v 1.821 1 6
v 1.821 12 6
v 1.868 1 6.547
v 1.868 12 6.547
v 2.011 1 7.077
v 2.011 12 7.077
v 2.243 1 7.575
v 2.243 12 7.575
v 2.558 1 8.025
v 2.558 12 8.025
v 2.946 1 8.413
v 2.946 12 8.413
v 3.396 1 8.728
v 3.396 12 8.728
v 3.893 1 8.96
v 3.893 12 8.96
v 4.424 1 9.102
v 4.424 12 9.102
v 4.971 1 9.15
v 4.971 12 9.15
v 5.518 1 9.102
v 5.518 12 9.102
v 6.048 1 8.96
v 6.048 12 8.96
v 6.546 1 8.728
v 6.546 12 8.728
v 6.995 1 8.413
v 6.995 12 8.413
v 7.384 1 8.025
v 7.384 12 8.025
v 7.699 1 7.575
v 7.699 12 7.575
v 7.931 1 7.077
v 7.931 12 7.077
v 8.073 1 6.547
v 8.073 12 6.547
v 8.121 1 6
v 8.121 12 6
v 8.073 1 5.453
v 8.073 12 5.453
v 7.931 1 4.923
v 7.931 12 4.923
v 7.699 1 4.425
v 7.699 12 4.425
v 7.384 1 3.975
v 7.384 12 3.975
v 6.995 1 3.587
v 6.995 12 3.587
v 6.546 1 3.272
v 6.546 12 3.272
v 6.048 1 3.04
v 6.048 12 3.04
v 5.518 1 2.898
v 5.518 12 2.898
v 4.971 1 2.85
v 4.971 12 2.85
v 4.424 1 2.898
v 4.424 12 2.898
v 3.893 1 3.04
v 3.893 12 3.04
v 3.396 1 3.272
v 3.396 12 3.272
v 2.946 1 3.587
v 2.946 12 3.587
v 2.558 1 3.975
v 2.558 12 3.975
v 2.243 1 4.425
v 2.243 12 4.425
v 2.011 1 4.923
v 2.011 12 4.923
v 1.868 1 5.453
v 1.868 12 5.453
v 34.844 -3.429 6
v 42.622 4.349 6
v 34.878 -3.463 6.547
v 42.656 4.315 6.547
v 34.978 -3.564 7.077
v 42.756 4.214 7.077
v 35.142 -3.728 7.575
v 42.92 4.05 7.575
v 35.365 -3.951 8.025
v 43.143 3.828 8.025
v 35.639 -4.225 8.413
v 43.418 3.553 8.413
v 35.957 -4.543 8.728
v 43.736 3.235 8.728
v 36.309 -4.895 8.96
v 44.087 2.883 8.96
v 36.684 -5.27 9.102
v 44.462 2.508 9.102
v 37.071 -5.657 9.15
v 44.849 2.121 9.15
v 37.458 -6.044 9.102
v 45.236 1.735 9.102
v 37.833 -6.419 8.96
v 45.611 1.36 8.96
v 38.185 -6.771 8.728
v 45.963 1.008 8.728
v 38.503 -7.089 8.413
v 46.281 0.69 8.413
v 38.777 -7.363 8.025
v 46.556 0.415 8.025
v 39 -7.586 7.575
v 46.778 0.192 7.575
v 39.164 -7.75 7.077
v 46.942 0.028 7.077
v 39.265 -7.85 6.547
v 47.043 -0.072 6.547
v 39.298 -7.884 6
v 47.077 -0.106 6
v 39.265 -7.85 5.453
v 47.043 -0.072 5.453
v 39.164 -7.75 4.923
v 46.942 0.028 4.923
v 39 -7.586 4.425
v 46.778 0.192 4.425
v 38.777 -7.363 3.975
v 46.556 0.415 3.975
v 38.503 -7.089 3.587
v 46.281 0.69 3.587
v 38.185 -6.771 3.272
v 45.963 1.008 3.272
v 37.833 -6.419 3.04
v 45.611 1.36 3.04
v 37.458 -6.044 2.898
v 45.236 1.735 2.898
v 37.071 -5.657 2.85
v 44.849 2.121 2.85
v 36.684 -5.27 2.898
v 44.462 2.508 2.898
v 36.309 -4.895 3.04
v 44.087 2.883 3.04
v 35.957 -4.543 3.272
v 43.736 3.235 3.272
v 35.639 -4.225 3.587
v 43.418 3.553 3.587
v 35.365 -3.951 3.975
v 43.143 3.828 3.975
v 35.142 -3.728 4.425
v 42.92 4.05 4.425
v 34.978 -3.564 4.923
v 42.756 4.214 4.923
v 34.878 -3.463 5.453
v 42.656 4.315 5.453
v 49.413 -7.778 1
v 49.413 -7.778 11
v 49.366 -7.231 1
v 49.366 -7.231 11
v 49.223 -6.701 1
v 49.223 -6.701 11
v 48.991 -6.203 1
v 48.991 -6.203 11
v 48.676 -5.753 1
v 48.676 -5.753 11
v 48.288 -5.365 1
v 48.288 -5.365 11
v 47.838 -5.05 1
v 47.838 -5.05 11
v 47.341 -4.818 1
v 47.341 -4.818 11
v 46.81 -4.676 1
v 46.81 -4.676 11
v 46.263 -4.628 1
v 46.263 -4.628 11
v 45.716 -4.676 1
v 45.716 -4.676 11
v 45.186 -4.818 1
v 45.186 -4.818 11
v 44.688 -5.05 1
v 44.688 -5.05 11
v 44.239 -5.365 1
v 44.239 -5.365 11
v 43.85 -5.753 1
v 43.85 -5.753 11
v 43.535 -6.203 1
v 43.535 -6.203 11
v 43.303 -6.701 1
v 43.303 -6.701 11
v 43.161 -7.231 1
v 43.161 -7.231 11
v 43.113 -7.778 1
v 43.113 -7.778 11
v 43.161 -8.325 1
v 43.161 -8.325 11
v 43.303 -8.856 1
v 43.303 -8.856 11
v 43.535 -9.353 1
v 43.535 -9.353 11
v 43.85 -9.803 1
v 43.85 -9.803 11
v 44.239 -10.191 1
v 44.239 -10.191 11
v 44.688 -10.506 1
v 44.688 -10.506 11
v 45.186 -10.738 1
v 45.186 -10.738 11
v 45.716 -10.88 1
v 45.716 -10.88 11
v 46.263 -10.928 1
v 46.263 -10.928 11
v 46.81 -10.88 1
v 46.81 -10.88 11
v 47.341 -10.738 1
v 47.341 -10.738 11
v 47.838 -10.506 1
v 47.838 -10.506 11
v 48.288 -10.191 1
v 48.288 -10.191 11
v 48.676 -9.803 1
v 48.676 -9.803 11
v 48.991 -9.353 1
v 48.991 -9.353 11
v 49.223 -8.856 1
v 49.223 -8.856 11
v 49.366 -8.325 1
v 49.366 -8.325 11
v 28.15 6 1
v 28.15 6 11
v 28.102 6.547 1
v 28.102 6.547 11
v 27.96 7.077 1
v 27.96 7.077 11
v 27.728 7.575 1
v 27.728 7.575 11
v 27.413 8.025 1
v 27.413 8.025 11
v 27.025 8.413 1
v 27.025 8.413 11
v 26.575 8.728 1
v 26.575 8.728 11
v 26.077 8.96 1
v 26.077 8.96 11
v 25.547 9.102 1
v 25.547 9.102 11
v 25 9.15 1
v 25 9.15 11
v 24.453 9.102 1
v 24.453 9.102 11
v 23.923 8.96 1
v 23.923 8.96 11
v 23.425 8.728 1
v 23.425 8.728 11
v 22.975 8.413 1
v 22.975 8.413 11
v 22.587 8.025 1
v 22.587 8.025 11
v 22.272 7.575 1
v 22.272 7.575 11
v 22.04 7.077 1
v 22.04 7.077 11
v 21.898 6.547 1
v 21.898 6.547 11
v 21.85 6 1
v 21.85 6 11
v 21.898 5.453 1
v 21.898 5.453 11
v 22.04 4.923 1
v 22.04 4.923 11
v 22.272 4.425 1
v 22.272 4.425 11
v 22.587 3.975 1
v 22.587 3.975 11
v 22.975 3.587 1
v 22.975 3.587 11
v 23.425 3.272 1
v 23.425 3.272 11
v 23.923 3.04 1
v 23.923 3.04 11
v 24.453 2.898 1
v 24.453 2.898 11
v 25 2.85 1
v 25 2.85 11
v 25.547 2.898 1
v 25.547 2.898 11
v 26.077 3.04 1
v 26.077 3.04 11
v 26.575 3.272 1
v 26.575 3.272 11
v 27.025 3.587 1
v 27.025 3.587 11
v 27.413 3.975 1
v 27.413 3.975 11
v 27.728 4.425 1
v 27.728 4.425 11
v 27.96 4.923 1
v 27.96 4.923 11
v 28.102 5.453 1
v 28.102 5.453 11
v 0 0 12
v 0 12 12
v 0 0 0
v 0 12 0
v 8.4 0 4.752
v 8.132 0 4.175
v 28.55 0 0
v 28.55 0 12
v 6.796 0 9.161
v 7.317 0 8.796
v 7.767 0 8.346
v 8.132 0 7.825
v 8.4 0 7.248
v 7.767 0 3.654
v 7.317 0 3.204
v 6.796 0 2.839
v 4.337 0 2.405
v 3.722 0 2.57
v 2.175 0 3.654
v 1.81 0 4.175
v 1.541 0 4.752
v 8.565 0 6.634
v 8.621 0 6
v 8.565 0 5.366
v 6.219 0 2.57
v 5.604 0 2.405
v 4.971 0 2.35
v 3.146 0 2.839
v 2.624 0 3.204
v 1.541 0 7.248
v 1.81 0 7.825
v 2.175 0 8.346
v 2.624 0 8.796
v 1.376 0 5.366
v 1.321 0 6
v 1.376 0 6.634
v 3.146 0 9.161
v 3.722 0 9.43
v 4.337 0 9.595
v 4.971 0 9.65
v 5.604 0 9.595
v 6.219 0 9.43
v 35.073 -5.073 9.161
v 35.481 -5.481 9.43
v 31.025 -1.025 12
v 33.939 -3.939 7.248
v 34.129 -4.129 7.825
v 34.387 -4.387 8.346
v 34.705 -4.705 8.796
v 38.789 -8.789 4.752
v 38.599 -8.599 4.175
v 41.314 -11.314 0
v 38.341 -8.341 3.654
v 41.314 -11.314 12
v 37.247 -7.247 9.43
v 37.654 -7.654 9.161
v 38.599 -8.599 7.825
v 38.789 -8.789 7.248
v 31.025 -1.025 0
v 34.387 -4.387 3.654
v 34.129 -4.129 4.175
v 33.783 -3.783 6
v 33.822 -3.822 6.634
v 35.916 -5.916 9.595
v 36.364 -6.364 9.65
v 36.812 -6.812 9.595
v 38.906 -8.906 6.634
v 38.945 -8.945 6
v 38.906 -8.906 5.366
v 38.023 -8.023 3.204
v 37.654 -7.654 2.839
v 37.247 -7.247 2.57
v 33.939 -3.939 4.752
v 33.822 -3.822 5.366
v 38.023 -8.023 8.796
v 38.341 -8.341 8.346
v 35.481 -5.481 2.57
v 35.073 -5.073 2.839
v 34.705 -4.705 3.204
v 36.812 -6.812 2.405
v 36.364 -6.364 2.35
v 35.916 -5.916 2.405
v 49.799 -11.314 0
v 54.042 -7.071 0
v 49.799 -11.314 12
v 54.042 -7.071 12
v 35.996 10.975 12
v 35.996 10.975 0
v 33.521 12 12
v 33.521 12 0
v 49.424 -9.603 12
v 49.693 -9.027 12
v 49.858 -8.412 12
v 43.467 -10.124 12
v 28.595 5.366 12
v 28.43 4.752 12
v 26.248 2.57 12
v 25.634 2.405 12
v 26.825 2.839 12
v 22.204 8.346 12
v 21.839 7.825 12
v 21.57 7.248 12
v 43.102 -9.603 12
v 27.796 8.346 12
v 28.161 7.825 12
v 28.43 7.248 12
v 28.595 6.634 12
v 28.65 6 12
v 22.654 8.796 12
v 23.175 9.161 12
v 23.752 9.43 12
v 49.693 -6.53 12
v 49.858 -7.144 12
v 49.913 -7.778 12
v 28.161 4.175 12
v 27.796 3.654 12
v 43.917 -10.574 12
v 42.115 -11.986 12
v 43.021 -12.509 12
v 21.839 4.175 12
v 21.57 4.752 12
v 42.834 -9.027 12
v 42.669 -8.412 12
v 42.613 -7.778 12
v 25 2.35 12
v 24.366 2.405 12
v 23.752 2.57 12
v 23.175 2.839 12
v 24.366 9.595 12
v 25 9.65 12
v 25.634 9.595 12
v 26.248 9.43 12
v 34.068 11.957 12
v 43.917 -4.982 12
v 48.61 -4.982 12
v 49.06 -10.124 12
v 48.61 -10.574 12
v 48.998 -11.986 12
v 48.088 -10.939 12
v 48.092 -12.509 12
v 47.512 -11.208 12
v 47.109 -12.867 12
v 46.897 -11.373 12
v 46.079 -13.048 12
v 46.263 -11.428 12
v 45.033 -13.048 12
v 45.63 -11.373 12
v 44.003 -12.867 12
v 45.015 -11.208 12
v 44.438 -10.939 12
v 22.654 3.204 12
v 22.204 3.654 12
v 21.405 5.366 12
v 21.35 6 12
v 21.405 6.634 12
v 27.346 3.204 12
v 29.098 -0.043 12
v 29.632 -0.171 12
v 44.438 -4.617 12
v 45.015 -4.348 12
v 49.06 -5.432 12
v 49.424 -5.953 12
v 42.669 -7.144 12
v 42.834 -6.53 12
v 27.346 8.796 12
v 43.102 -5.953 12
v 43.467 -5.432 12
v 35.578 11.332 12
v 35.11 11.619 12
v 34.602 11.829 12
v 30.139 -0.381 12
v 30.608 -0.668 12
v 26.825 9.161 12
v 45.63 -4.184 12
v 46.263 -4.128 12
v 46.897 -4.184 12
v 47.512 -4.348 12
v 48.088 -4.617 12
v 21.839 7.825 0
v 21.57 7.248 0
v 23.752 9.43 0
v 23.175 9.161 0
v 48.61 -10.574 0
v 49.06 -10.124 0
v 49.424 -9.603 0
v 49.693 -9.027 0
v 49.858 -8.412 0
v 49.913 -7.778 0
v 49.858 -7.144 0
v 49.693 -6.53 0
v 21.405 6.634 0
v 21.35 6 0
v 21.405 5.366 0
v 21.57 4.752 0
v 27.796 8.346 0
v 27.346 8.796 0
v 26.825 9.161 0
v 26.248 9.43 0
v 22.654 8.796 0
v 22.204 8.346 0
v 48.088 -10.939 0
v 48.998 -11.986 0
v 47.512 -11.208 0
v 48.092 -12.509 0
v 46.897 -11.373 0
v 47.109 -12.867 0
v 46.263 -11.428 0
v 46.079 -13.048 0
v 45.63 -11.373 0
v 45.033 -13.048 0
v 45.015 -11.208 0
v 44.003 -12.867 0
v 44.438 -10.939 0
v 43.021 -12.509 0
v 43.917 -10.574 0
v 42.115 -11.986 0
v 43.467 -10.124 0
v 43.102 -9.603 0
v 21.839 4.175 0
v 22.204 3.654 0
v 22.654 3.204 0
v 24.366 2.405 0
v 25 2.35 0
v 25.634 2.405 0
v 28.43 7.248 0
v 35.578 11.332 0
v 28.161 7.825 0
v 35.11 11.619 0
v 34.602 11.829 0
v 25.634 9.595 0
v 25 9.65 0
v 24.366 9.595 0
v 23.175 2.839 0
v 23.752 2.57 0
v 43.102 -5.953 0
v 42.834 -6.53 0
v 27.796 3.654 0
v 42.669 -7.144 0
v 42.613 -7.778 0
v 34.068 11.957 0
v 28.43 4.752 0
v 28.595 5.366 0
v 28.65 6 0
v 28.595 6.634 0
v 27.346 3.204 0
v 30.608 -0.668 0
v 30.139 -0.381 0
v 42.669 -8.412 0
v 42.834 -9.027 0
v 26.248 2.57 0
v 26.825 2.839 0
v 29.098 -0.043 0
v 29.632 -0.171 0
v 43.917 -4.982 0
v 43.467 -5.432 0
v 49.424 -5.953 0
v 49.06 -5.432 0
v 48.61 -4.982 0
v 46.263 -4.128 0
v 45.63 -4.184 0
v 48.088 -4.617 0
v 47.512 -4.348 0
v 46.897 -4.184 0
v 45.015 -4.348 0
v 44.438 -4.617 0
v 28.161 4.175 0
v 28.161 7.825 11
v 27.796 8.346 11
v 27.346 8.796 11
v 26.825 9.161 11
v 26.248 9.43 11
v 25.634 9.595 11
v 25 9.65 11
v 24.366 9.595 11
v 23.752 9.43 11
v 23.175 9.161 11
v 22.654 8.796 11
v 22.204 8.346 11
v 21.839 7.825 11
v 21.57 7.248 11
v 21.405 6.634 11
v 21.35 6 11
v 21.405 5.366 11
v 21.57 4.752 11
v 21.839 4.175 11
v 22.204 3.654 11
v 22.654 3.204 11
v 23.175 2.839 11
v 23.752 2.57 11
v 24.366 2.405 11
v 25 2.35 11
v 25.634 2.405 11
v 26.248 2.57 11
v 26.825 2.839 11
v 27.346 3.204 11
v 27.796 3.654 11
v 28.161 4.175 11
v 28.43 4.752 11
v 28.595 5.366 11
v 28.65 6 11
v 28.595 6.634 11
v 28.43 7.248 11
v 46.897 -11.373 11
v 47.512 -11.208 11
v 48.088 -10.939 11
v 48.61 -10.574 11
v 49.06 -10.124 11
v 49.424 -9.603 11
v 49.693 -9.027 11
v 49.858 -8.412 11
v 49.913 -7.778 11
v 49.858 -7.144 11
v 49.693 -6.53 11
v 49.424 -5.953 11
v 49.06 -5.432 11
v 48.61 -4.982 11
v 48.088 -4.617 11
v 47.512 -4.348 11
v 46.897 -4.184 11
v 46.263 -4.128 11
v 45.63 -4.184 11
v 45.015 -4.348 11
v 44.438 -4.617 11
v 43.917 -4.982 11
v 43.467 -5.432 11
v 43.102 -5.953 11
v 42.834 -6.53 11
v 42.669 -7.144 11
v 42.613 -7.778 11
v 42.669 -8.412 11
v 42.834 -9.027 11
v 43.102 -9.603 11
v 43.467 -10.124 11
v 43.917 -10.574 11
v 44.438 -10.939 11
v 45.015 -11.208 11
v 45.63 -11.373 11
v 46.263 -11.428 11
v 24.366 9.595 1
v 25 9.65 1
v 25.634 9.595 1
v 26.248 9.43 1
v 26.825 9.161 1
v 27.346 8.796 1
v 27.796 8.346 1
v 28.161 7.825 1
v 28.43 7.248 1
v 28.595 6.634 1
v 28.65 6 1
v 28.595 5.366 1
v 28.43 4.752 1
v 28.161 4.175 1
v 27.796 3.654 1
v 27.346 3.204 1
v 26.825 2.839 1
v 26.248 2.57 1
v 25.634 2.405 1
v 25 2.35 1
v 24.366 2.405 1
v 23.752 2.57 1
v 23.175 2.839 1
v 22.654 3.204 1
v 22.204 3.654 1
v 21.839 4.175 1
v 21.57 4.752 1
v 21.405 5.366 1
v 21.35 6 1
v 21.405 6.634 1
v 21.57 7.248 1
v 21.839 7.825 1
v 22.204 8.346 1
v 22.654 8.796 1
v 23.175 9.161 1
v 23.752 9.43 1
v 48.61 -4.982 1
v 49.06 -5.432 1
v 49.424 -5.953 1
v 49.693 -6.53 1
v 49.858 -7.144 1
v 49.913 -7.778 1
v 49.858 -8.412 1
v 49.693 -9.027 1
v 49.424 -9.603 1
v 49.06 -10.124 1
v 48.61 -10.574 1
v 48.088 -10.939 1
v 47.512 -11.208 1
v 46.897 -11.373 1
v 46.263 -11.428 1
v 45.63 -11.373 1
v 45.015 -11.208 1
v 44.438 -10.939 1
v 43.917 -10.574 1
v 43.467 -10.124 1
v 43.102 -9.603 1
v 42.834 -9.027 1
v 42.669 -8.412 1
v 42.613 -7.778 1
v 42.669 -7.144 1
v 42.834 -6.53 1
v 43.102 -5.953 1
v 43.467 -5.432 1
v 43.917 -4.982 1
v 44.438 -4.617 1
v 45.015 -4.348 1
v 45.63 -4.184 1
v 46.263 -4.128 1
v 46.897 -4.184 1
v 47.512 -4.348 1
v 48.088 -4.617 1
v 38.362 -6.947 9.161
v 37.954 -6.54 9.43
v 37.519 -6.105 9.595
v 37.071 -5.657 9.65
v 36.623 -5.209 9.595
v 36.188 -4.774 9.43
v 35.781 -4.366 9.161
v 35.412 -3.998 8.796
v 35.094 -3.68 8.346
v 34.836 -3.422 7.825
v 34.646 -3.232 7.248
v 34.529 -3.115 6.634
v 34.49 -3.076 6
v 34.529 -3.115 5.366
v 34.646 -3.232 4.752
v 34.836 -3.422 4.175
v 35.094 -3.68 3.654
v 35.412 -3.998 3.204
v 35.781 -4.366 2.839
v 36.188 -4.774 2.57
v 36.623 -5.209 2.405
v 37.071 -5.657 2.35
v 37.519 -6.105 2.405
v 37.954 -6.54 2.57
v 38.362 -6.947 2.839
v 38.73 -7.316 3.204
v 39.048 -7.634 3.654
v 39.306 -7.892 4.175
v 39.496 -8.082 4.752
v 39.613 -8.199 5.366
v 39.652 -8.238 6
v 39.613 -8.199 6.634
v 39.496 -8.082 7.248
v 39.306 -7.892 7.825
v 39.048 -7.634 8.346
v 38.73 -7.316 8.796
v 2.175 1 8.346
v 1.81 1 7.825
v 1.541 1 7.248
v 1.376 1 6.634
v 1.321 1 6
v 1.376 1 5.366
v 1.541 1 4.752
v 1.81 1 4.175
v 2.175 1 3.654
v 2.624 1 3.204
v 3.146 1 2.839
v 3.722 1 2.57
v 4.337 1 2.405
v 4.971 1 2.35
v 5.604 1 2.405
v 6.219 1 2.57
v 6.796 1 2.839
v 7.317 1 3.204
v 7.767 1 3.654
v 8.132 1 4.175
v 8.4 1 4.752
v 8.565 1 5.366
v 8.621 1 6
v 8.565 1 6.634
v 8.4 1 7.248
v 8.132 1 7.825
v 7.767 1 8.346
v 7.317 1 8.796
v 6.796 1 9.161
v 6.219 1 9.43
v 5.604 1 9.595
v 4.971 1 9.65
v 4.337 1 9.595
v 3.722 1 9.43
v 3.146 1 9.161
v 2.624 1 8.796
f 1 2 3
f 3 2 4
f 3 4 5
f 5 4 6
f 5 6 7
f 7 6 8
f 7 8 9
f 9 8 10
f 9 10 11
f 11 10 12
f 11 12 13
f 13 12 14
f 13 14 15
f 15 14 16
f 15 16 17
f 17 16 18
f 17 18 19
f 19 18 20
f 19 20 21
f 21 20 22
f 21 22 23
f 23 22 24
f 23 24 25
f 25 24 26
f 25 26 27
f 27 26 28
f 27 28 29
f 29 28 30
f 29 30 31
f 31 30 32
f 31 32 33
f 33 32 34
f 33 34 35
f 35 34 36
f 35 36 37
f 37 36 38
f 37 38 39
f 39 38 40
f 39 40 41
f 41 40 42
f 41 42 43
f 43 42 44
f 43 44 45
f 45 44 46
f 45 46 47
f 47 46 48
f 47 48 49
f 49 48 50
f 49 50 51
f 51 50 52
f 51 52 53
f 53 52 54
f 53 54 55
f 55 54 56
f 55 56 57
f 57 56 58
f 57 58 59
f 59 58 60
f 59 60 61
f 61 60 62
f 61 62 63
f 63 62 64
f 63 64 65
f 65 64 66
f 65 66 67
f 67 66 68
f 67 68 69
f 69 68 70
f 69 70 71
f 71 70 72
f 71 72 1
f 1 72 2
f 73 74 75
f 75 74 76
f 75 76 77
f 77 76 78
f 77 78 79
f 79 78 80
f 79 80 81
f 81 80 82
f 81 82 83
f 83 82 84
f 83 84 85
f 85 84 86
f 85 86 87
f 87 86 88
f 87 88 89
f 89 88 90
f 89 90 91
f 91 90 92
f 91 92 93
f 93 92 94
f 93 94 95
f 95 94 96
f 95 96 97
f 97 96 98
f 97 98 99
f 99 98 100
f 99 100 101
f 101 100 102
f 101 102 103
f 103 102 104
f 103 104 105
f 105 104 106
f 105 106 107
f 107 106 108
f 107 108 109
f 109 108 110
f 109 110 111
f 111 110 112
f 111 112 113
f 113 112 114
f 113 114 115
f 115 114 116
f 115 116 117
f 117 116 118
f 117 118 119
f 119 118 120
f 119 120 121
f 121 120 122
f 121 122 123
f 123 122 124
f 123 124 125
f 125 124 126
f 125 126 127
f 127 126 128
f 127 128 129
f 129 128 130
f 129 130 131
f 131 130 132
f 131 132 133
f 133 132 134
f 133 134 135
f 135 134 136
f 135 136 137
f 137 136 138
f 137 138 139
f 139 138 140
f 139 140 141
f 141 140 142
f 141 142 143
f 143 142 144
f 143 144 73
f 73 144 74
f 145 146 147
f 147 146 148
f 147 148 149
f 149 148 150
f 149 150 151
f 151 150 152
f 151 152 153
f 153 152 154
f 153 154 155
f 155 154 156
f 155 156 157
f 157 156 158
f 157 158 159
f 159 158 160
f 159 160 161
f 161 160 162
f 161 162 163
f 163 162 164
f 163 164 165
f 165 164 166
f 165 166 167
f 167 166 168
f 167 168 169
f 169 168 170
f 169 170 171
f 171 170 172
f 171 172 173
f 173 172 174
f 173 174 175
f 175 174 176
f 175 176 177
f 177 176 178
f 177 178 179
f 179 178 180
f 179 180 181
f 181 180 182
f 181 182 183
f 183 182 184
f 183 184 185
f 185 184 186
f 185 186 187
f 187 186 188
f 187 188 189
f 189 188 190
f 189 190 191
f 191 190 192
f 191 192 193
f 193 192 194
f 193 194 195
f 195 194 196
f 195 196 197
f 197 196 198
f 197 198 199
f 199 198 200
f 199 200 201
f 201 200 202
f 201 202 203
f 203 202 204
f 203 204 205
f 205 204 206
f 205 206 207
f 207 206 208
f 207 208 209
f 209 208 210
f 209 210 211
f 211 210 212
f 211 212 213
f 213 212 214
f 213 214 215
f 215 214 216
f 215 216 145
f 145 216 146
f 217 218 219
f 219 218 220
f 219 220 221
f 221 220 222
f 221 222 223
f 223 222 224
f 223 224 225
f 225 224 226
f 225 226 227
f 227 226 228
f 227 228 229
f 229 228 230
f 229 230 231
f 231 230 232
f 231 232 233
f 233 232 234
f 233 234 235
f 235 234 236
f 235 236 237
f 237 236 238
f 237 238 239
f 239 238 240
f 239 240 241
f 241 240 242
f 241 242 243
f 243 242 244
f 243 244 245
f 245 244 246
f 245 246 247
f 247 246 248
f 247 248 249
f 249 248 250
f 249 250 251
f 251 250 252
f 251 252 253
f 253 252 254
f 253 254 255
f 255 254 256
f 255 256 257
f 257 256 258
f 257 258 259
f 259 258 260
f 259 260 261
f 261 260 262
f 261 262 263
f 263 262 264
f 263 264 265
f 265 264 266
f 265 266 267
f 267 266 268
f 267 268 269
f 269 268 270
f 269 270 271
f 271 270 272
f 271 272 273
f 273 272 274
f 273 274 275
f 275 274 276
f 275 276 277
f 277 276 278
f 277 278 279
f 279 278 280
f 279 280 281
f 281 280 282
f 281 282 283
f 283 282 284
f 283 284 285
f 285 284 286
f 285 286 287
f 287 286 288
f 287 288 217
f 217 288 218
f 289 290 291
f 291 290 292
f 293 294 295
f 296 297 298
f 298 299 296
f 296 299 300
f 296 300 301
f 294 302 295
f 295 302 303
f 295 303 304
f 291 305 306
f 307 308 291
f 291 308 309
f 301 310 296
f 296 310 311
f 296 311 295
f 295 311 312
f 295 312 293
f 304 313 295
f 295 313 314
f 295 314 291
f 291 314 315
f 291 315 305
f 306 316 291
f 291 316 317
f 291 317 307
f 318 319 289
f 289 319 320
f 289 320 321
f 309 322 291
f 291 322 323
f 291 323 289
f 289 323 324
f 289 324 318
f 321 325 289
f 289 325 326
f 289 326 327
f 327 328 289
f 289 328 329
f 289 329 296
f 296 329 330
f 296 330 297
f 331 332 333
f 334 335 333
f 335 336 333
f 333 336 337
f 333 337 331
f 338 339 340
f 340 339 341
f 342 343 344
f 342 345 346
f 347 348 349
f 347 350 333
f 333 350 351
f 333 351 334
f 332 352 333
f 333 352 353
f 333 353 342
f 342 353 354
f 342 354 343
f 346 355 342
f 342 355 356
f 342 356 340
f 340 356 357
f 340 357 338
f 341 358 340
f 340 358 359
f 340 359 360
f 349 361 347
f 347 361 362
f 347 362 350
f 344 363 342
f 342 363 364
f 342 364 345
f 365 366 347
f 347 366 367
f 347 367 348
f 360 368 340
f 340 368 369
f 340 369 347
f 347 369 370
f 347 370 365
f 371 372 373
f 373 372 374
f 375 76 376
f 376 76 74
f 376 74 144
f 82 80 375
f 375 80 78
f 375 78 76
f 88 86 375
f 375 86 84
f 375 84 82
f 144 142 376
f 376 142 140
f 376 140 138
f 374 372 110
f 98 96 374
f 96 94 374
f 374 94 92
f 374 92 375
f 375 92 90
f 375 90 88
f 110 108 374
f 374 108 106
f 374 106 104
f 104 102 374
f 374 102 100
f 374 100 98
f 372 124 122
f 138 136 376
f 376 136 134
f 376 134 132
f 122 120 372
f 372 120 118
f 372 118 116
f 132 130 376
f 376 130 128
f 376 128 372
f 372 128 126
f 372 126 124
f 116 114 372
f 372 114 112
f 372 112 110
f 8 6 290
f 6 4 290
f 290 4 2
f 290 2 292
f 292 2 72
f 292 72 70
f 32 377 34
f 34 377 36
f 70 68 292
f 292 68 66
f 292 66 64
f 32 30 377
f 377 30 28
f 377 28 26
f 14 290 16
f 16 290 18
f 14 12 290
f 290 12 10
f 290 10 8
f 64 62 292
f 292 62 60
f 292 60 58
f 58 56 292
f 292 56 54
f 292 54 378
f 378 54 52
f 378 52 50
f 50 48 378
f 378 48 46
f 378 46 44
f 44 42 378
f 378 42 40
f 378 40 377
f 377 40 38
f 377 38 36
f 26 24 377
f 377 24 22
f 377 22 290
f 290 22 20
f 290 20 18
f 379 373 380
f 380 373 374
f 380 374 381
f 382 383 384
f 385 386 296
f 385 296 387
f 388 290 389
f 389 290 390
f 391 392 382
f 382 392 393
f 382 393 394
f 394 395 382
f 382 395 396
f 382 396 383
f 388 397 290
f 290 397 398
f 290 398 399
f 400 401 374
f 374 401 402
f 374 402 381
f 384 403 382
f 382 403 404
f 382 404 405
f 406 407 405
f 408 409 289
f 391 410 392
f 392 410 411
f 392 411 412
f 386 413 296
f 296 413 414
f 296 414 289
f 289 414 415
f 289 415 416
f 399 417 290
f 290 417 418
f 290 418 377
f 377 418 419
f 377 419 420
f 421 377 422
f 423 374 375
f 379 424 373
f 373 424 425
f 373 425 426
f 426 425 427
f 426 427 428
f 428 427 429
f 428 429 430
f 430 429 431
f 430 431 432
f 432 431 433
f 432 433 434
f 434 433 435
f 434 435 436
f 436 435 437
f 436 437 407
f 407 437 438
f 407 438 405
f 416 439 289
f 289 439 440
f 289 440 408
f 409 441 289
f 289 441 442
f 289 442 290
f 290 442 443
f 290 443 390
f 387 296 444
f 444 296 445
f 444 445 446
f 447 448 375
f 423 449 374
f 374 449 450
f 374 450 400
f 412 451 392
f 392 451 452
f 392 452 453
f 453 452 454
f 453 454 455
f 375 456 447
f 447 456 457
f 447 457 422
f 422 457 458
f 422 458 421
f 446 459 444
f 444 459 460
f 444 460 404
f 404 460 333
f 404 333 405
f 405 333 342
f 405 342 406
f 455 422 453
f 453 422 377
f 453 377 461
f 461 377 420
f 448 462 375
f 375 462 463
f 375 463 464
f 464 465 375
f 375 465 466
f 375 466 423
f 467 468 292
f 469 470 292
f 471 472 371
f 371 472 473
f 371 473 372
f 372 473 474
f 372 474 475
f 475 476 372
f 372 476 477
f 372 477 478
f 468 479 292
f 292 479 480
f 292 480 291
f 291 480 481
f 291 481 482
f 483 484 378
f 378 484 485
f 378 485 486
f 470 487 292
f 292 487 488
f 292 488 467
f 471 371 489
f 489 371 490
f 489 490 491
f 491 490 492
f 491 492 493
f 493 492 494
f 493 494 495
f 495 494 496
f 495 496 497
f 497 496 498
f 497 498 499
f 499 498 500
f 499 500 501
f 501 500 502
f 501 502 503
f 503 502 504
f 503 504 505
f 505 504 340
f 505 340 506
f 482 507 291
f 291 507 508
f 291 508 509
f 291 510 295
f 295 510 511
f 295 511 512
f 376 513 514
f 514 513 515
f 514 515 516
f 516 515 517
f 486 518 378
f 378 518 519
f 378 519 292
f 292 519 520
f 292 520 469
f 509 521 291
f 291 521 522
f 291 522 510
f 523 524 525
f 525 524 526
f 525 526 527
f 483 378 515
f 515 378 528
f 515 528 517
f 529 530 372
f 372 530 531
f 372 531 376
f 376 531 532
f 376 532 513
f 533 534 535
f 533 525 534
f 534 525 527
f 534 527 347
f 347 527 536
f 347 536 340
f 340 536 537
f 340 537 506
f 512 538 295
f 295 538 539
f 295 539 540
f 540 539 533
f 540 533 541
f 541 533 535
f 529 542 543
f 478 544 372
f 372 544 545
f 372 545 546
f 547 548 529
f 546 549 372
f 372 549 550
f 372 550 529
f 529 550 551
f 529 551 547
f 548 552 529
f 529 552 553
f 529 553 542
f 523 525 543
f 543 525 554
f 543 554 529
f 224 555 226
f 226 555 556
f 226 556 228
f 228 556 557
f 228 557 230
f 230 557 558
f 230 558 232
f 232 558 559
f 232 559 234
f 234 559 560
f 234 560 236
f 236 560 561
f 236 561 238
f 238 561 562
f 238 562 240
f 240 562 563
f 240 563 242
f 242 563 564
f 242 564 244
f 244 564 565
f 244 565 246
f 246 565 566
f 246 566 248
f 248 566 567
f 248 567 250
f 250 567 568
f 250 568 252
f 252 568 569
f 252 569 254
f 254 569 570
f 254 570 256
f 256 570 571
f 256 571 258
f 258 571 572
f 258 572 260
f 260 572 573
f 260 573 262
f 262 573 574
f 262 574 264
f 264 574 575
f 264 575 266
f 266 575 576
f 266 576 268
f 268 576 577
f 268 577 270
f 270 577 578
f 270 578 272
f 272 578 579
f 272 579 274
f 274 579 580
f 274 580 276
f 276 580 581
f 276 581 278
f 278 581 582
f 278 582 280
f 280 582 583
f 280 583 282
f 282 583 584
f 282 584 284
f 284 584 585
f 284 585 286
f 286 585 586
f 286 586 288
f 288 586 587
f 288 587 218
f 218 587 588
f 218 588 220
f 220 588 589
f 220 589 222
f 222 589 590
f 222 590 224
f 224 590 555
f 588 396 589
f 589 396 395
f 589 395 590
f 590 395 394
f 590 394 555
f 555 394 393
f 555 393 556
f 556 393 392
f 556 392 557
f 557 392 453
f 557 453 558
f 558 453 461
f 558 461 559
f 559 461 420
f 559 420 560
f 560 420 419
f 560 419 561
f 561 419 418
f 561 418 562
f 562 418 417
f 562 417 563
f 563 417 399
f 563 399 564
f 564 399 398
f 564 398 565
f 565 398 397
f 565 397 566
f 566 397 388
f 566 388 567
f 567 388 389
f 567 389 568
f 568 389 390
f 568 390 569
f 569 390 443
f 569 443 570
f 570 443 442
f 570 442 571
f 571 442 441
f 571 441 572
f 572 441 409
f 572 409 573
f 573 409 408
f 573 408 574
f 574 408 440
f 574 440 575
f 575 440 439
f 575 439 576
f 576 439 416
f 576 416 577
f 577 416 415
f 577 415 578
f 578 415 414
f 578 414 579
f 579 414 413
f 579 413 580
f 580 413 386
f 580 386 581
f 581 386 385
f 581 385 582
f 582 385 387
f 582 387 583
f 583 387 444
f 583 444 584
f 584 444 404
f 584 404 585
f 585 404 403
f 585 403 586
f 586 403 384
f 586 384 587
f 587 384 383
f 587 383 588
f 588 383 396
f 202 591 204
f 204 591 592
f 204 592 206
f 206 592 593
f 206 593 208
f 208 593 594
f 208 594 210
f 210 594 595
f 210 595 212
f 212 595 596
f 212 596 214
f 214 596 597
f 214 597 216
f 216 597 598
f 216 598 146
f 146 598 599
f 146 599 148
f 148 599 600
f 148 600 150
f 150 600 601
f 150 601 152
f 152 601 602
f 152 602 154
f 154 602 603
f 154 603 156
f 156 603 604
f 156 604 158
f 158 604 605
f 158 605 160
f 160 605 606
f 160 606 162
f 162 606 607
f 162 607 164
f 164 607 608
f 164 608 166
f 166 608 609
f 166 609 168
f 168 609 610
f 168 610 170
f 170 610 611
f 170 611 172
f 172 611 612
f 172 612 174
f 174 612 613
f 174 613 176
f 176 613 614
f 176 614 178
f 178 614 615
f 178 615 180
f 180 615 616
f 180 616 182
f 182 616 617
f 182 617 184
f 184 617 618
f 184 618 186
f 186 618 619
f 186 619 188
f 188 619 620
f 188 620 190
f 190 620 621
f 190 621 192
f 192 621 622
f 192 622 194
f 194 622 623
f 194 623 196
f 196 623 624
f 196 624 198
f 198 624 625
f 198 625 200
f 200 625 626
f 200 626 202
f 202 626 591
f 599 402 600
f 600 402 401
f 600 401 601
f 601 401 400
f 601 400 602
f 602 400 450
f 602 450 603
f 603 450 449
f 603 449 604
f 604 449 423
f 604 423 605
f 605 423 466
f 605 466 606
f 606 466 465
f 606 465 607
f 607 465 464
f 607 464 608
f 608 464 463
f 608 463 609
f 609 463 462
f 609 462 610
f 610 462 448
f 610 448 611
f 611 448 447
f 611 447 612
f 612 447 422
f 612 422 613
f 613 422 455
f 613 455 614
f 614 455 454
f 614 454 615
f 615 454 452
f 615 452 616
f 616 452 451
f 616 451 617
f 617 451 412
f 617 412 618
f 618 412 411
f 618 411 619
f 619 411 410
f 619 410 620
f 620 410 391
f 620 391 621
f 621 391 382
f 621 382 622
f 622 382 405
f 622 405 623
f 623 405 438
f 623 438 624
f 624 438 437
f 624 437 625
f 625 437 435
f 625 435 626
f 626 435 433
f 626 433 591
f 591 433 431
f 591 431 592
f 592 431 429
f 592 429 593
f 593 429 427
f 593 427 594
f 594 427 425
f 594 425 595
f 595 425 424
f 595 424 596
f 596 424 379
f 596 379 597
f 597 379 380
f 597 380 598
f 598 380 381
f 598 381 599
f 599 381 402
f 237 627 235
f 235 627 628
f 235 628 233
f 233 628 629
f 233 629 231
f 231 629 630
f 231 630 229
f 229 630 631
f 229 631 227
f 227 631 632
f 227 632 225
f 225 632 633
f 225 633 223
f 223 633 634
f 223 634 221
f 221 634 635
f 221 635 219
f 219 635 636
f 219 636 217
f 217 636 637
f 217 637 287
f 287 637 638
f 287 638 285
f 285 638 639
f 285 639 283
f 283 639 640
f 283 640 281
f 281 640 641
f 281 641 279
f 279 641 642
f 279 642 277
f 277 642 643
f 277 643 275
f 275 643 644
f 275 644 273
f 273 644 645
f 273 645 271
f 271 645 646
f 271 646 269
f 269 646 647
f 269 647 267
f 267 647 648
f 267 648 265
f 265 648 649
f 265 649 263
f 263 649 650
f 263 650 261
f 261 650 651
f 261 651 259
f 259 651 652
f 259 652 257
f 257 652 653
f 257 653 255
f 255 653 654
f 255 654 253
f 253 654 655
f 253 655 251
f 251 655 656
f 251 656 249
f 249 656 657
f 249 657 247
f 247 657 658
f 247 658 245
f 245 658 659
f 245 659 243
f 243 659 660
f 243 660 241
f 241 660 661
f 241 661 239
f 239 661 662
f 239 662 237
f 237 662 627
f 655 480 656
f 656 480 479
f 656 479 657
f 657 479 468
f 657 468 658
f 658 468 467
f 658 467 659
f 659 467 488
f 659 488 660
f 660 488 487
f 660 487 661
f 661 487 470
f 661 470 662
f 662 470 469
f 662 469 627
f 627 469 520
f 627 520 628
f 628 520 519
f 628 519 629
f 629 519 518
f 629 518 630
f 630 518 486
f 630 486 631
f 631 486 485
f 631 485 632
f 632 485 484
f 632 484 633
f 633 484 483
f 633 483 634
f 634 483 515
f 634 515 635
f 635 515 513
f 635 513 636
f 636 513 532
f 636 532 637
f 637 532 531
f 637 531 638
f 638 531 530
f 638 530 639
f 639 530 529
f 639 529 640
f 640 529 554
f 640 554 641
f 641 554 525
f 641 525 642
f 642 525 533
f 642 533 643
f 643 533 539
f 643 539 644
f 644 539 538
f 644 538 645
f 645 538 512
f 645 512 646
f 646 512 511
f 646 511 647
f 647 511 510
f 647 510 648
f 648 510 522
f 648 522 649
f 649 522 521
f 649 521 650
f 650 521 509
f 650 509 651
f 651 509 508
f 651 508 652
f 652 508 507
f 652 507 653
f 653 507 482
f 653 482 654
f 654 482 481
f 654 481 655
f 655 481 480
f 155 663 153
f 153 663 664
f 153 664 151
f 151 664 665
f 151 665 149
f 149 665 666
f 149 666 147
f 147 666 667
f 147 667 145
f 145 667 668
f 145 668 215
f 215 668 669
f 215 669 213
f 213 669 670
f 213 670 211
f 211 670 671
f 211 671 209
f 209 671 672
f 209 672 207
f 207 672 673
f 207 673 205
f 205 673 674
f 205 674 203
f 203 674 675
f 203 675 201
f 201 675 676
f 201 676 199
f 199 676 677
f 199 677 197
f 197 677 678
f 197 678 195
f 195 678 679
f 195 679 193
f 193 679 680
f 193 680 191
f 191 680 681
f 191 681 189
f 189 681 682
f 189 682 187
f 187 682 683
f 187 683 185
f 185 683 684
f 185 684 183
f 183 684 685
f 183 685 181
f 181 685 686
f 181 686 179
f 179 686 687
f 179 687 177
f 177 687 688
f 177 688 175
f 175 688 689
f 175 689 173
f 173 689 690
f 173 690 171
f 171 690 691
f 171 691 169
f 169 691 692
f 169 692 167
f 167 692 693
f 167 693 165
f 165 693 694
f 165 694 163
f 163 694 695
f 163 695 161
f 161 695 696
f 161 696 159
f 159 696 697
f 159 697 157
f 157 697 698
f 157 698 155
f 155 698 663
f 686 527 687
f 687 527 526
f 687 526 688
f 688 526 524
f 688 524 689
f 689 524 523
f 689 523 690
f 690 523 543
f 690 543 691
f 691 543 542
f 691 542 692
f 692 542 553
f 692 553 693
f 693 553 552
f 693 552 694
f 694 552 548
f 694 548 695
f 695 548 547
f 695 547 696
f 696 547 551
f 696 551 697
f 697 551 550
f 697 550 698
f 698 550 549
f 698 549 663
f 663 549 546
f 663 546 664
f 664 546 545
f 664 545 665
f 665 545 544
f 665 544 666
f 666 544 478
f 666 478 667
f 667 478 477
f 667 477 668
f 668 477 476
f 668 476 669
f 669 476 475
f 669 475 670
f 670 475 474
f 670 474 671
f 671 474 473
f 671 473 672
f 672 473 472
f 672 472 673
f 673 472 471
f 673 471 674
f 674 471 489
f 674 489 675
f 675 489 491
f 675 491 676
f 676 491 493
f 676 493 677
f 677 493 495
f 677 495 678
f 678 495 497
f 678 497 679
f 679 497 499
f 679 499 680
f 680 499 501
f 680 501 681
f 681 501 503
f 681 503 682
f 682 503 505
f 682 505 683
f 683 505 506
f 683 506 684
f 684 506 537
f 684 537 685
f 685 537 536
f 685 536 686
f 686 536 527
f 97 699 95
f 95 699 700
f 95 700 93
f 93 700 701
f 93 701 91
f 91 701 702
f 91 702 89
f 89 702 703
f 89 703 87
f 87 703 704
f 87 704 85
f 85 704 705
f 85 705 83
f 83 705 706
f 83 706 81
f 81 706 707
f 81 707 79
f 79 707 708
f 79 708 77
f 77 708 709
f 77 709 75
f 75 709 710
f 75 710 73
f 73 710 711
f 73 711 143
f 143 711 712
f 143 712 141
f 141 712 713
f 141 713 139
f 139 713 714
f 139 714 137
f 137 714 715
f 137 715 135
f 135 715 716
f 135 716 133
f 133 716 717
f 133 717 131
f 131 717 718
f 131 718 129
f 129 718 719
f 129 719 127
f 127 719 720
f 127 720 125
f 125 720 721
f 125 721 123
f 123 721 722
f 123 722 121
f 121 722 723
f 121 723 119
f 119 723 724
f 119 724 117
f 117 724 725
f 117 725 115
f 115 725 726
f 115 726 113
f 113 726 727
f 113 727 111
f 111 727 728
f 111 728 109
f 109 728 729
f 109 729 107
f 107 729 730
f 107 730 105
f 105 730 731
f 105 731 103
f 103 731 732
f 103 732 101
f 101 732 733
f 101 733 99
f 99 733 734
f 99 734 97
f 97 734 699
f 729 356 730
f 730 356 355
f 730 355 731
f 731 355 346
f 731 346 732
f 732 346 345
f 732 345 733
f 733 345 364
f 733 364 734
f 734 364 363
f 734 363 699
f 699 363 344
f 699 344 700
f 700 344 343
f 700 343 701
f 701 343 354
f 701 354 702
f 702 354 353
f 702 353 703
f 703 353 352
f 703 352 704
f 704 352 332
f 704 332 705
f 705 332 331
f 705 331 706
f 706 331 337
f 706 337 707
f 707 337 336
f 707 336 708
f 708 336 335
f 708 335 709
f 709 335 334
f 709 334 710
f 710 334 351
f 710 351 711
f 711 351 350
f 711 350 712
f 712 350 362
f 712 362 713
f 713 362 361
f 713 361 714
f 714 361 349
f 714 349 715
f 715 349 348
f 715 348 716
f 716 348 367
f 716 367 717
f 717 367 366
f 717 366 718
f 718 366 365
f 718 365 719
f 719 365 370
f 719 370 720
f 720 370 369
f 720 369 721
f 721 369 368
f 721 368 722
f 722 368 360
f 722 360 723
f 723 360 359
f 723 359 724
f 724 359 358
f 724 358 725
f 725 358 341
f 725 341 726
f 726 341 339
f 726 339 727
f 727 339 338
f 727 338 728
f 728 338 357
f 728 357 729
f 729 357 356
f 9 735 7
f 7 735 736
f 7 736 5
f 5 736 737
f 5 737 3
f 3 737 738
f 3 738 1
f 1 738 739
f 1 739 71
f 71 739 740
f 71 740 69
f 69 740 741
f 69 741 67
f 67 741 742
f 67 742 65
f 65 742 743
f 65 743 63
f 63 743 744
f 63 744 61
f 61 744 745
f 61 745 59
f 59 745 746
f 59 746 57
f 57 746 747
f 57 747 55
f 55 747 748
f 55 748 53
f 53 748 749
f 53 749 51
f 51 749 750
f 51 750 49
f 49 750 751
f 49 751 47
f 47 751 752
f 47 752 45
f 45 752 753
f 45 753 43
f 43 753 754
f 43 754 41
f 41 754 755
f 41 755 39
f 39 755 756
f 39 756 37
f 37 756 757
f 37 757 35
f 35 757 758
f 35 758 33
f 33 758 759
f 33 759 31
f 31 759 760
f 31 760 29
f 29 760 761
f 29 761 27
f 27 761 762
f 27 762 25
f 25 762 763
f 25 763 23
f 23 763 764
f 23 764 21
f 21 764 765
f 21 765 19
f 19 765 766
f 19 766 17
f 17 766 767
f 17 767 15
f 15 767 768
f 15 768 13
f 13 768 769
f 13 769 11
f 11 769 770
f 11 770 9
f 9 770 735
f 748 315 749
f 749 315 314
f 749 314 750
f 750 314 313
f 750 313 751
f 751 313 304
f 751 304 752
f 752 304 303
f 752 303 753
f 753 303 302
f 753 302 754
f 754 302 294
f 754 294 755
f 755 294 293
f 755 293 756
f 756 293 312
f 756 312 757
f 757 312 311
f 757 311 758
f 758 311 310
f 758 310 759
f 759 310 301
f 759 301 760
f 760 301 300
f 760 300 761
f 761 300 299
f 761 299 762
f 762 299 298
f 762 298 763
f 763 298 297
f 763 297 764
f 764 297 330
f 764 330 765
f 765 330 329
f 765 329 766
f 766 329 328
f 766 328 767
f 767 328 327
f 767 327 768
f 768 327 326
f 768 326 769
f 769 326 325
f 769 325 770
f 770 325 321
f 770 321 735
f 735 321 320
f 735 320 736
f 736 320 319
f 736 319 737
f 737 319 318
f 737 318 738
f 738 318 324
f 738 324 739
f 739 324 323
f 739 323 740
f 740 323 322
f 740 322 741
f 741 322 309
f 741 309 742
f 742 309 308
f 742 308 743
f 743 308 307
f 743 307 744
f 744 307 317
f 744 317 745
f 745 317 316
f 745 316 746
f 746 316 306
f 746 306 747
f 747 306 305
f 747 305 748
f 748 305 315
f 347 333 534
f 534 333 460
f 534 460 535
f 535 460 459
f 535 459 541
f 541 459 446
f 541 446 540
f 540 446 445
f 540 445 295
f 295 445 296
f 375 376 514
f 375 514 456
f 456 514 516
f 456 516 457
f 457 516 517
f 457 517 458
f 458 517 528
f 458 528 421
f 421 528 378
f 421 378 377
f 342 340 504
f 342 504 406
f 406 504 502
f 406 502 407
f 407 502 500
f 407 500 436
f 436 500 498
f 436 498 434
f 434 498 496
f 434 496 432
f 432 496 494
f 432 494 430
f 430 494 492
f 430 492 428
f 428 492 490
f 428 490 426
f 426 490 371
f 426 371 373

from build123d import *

# Parameters (mm, degrees)
BOSS_EXTRU_1_DEPTH           = 12
ESQUISSE2_R                  = 3.15
ENL_V_MAT_EXTRU_1_DEPTH      = 1
ENL_V_MAT_EXTRU_1_DEPTH_BACK = 13
ESQUISSE3_R                  = 3.15
ENL_V_MAT_EXTRU_2_DEPTH      = 12
ESQUISSE4_R                  = 3.15
ENL_V_MAT_EXTRU_3_DEPTH      = 1
ENL_V_MAT_EXTRU_3_DEPTH_BACK = 28.556349186
ESQUISSE5_R                  = 3.65
ENL_V_MAT_EXTRU_4_DEPTH      = 1
ESQUISSE6_R                  = 3.65
ENL_V_MAT_EXTRU_5_DEPTH      = 1
ESQUISSE7_R                  = 3.65
ENL_V_MAT_EXTRU_6_DEPTH      = 1
ESQUISSE8_R                  = 3.65
ENL_V_MAT_EXTRU_7_DEPTH      = 1
CONG_1_R                     = 3.5
CONG_2_R                     = 6


with BuildPart() as part:
    # Esquisse1 → Boss.-Extru.1 (new body)
    with BuildSketch(Plane.XY):
        Polygon((0, 0), (30, 0), (45.556349186, -15.556349186), (54.04163056, -7.071067812), (34.970562748, 12), (0, 12), align=None)
    extrude(amount=BOSS_EXTRU_1_DEPTH)

    # Esquisse2 → Enlèv. mat.-Extru.1 (cut, two sides)
    with BuildSketch(Plane.XY.offset(12)) as enl_v_mat_extru_1_sk:
        with Locations((25, 6)):
            Circle(ESQUISSE2_R)
        with Locations((46.263455967, -7.778174593)):
            Circle(ESQUISSE2_R)
    extrude(amount=ENL_V_MAT_EXTRU_1_DEPTH, mode=Mode.SUBTRACT)
    extrude(enl_v_mat_extru_1_sk.sketch, amount=-ENL_V_MAT_EXTRU_1_DEPTH_BACK, mode=Mode.SUBTRACT)

    # Esquisse3 → Enlèv. mat.-Extru.2 (cut)
    with BuildSketch(Plane(origin=(23.485281374, 23.485281374, 0), x_dir=(0, 0, -1), z_dir=(0.707106781, 0.707106781, 0))):
        with Locations((-6, -30.213203436)):
            Circle(ESQUISSE3_R)
    extrude(amount=-ENL_V_MAT_EXTRU_2_DEPTH, mode=Mode.SUBTRACT)

    # Esquisse4 → Enlèv. mat.-Extru.3 (cut, two sides)
    with BuildSketch(Plane(origin=(0, 12, 0), x_dir=(1, 0, 0), z_dir=(0, 1, 0))) as enl_v_mat_extru_3_sk:
        with Locations((4.970562748, -6)):
            Circle(ESQUISSE4_R)
    extrude(amount=ENL_V_MAT_EXTRU_3_DEPTH, mode=Mode.SUBTRACT)
    extrude(enl_v_mat_extru_3_sk.sketch, amount=-ENL_V_MAT_EXTRU_3_DEPTH_BACK, mode=Mode.SUBTRACT)

    # Esquisse5 → Enlèv. mat.-Extru.4 (cut)
    with BuildSketch(Plane.XY.offset(12)):
        with Locations((25, 6)):
            Circle(ESQUISSE5_R)
        with Locations((46.263455967, -7.778174593)):
            Circle(ESQUISSE5_R)
    extrude(amount=-ENL_V_MAT_EXTRU_4_DEPTH, mode=Mode.SUBTRACT)

    # Esquisse6 → Enlèv. mat.-Extru.5 (cut)
    with BuildSketch(Plane(origin=(0, 0, 0), x_dir=(-1, 0, 0), z_dir=(0, 0, -1))):
        with Locations((-25, 6)):
            Circle(ESQUISSE6_R)
        with Locations((-46.263455967, -7.778174593)):
            Circle(ESQUISSE6_R)
    extrude(amount=-ENL_V_MAT_EXTRU_5_DEPTH, mode=Mode.SUBTRACT)

    # Esquisse7 → Enlèv. mat.-Extru.6 (cut)
    with BuildSketch(Plane(origin=(15, 15, 0), x_dir=(0, 0, 1), z_dir=(-0.707106781, -0.707106781, 0))):
        with Locations((6, -30.213203436)):
            Circle(ESQUISSE7_R)
    extrude(amount=-ENL_V_MAT_EXTRU_6_DEPTH, mode=Mode.SUBTRACT)

    # Esquisse8 → Enlèv. mat.-Extru.7 (cut)
    with BuildSketch(Plane.XZ):
        with Locations((4.970562748, 6)):
            Circle(ESQUISSE8_R)
    extrude(amount=-ENL_V_MAT_EXTRU_7_DEPTH, mode=Mode.SUBTRACT)

    # Congé1
    cong_1_edges = [part.edges().sort_by_distance(p)[0] for p in [
        (34.970562748, 12, 6),
        (30, 0, 6),
    ]]
    fillet(cong_1_edges, radius=CONG_1_R)

    # Congé2
    cong_2_edges = [part.edges().sort_by_distance(p)[0] for p in [
        (45.556349186, -15.556349186, 6),
    ]]
    fillet(cong_2_edges, radius=CONG_2_R)


solid = part.part
